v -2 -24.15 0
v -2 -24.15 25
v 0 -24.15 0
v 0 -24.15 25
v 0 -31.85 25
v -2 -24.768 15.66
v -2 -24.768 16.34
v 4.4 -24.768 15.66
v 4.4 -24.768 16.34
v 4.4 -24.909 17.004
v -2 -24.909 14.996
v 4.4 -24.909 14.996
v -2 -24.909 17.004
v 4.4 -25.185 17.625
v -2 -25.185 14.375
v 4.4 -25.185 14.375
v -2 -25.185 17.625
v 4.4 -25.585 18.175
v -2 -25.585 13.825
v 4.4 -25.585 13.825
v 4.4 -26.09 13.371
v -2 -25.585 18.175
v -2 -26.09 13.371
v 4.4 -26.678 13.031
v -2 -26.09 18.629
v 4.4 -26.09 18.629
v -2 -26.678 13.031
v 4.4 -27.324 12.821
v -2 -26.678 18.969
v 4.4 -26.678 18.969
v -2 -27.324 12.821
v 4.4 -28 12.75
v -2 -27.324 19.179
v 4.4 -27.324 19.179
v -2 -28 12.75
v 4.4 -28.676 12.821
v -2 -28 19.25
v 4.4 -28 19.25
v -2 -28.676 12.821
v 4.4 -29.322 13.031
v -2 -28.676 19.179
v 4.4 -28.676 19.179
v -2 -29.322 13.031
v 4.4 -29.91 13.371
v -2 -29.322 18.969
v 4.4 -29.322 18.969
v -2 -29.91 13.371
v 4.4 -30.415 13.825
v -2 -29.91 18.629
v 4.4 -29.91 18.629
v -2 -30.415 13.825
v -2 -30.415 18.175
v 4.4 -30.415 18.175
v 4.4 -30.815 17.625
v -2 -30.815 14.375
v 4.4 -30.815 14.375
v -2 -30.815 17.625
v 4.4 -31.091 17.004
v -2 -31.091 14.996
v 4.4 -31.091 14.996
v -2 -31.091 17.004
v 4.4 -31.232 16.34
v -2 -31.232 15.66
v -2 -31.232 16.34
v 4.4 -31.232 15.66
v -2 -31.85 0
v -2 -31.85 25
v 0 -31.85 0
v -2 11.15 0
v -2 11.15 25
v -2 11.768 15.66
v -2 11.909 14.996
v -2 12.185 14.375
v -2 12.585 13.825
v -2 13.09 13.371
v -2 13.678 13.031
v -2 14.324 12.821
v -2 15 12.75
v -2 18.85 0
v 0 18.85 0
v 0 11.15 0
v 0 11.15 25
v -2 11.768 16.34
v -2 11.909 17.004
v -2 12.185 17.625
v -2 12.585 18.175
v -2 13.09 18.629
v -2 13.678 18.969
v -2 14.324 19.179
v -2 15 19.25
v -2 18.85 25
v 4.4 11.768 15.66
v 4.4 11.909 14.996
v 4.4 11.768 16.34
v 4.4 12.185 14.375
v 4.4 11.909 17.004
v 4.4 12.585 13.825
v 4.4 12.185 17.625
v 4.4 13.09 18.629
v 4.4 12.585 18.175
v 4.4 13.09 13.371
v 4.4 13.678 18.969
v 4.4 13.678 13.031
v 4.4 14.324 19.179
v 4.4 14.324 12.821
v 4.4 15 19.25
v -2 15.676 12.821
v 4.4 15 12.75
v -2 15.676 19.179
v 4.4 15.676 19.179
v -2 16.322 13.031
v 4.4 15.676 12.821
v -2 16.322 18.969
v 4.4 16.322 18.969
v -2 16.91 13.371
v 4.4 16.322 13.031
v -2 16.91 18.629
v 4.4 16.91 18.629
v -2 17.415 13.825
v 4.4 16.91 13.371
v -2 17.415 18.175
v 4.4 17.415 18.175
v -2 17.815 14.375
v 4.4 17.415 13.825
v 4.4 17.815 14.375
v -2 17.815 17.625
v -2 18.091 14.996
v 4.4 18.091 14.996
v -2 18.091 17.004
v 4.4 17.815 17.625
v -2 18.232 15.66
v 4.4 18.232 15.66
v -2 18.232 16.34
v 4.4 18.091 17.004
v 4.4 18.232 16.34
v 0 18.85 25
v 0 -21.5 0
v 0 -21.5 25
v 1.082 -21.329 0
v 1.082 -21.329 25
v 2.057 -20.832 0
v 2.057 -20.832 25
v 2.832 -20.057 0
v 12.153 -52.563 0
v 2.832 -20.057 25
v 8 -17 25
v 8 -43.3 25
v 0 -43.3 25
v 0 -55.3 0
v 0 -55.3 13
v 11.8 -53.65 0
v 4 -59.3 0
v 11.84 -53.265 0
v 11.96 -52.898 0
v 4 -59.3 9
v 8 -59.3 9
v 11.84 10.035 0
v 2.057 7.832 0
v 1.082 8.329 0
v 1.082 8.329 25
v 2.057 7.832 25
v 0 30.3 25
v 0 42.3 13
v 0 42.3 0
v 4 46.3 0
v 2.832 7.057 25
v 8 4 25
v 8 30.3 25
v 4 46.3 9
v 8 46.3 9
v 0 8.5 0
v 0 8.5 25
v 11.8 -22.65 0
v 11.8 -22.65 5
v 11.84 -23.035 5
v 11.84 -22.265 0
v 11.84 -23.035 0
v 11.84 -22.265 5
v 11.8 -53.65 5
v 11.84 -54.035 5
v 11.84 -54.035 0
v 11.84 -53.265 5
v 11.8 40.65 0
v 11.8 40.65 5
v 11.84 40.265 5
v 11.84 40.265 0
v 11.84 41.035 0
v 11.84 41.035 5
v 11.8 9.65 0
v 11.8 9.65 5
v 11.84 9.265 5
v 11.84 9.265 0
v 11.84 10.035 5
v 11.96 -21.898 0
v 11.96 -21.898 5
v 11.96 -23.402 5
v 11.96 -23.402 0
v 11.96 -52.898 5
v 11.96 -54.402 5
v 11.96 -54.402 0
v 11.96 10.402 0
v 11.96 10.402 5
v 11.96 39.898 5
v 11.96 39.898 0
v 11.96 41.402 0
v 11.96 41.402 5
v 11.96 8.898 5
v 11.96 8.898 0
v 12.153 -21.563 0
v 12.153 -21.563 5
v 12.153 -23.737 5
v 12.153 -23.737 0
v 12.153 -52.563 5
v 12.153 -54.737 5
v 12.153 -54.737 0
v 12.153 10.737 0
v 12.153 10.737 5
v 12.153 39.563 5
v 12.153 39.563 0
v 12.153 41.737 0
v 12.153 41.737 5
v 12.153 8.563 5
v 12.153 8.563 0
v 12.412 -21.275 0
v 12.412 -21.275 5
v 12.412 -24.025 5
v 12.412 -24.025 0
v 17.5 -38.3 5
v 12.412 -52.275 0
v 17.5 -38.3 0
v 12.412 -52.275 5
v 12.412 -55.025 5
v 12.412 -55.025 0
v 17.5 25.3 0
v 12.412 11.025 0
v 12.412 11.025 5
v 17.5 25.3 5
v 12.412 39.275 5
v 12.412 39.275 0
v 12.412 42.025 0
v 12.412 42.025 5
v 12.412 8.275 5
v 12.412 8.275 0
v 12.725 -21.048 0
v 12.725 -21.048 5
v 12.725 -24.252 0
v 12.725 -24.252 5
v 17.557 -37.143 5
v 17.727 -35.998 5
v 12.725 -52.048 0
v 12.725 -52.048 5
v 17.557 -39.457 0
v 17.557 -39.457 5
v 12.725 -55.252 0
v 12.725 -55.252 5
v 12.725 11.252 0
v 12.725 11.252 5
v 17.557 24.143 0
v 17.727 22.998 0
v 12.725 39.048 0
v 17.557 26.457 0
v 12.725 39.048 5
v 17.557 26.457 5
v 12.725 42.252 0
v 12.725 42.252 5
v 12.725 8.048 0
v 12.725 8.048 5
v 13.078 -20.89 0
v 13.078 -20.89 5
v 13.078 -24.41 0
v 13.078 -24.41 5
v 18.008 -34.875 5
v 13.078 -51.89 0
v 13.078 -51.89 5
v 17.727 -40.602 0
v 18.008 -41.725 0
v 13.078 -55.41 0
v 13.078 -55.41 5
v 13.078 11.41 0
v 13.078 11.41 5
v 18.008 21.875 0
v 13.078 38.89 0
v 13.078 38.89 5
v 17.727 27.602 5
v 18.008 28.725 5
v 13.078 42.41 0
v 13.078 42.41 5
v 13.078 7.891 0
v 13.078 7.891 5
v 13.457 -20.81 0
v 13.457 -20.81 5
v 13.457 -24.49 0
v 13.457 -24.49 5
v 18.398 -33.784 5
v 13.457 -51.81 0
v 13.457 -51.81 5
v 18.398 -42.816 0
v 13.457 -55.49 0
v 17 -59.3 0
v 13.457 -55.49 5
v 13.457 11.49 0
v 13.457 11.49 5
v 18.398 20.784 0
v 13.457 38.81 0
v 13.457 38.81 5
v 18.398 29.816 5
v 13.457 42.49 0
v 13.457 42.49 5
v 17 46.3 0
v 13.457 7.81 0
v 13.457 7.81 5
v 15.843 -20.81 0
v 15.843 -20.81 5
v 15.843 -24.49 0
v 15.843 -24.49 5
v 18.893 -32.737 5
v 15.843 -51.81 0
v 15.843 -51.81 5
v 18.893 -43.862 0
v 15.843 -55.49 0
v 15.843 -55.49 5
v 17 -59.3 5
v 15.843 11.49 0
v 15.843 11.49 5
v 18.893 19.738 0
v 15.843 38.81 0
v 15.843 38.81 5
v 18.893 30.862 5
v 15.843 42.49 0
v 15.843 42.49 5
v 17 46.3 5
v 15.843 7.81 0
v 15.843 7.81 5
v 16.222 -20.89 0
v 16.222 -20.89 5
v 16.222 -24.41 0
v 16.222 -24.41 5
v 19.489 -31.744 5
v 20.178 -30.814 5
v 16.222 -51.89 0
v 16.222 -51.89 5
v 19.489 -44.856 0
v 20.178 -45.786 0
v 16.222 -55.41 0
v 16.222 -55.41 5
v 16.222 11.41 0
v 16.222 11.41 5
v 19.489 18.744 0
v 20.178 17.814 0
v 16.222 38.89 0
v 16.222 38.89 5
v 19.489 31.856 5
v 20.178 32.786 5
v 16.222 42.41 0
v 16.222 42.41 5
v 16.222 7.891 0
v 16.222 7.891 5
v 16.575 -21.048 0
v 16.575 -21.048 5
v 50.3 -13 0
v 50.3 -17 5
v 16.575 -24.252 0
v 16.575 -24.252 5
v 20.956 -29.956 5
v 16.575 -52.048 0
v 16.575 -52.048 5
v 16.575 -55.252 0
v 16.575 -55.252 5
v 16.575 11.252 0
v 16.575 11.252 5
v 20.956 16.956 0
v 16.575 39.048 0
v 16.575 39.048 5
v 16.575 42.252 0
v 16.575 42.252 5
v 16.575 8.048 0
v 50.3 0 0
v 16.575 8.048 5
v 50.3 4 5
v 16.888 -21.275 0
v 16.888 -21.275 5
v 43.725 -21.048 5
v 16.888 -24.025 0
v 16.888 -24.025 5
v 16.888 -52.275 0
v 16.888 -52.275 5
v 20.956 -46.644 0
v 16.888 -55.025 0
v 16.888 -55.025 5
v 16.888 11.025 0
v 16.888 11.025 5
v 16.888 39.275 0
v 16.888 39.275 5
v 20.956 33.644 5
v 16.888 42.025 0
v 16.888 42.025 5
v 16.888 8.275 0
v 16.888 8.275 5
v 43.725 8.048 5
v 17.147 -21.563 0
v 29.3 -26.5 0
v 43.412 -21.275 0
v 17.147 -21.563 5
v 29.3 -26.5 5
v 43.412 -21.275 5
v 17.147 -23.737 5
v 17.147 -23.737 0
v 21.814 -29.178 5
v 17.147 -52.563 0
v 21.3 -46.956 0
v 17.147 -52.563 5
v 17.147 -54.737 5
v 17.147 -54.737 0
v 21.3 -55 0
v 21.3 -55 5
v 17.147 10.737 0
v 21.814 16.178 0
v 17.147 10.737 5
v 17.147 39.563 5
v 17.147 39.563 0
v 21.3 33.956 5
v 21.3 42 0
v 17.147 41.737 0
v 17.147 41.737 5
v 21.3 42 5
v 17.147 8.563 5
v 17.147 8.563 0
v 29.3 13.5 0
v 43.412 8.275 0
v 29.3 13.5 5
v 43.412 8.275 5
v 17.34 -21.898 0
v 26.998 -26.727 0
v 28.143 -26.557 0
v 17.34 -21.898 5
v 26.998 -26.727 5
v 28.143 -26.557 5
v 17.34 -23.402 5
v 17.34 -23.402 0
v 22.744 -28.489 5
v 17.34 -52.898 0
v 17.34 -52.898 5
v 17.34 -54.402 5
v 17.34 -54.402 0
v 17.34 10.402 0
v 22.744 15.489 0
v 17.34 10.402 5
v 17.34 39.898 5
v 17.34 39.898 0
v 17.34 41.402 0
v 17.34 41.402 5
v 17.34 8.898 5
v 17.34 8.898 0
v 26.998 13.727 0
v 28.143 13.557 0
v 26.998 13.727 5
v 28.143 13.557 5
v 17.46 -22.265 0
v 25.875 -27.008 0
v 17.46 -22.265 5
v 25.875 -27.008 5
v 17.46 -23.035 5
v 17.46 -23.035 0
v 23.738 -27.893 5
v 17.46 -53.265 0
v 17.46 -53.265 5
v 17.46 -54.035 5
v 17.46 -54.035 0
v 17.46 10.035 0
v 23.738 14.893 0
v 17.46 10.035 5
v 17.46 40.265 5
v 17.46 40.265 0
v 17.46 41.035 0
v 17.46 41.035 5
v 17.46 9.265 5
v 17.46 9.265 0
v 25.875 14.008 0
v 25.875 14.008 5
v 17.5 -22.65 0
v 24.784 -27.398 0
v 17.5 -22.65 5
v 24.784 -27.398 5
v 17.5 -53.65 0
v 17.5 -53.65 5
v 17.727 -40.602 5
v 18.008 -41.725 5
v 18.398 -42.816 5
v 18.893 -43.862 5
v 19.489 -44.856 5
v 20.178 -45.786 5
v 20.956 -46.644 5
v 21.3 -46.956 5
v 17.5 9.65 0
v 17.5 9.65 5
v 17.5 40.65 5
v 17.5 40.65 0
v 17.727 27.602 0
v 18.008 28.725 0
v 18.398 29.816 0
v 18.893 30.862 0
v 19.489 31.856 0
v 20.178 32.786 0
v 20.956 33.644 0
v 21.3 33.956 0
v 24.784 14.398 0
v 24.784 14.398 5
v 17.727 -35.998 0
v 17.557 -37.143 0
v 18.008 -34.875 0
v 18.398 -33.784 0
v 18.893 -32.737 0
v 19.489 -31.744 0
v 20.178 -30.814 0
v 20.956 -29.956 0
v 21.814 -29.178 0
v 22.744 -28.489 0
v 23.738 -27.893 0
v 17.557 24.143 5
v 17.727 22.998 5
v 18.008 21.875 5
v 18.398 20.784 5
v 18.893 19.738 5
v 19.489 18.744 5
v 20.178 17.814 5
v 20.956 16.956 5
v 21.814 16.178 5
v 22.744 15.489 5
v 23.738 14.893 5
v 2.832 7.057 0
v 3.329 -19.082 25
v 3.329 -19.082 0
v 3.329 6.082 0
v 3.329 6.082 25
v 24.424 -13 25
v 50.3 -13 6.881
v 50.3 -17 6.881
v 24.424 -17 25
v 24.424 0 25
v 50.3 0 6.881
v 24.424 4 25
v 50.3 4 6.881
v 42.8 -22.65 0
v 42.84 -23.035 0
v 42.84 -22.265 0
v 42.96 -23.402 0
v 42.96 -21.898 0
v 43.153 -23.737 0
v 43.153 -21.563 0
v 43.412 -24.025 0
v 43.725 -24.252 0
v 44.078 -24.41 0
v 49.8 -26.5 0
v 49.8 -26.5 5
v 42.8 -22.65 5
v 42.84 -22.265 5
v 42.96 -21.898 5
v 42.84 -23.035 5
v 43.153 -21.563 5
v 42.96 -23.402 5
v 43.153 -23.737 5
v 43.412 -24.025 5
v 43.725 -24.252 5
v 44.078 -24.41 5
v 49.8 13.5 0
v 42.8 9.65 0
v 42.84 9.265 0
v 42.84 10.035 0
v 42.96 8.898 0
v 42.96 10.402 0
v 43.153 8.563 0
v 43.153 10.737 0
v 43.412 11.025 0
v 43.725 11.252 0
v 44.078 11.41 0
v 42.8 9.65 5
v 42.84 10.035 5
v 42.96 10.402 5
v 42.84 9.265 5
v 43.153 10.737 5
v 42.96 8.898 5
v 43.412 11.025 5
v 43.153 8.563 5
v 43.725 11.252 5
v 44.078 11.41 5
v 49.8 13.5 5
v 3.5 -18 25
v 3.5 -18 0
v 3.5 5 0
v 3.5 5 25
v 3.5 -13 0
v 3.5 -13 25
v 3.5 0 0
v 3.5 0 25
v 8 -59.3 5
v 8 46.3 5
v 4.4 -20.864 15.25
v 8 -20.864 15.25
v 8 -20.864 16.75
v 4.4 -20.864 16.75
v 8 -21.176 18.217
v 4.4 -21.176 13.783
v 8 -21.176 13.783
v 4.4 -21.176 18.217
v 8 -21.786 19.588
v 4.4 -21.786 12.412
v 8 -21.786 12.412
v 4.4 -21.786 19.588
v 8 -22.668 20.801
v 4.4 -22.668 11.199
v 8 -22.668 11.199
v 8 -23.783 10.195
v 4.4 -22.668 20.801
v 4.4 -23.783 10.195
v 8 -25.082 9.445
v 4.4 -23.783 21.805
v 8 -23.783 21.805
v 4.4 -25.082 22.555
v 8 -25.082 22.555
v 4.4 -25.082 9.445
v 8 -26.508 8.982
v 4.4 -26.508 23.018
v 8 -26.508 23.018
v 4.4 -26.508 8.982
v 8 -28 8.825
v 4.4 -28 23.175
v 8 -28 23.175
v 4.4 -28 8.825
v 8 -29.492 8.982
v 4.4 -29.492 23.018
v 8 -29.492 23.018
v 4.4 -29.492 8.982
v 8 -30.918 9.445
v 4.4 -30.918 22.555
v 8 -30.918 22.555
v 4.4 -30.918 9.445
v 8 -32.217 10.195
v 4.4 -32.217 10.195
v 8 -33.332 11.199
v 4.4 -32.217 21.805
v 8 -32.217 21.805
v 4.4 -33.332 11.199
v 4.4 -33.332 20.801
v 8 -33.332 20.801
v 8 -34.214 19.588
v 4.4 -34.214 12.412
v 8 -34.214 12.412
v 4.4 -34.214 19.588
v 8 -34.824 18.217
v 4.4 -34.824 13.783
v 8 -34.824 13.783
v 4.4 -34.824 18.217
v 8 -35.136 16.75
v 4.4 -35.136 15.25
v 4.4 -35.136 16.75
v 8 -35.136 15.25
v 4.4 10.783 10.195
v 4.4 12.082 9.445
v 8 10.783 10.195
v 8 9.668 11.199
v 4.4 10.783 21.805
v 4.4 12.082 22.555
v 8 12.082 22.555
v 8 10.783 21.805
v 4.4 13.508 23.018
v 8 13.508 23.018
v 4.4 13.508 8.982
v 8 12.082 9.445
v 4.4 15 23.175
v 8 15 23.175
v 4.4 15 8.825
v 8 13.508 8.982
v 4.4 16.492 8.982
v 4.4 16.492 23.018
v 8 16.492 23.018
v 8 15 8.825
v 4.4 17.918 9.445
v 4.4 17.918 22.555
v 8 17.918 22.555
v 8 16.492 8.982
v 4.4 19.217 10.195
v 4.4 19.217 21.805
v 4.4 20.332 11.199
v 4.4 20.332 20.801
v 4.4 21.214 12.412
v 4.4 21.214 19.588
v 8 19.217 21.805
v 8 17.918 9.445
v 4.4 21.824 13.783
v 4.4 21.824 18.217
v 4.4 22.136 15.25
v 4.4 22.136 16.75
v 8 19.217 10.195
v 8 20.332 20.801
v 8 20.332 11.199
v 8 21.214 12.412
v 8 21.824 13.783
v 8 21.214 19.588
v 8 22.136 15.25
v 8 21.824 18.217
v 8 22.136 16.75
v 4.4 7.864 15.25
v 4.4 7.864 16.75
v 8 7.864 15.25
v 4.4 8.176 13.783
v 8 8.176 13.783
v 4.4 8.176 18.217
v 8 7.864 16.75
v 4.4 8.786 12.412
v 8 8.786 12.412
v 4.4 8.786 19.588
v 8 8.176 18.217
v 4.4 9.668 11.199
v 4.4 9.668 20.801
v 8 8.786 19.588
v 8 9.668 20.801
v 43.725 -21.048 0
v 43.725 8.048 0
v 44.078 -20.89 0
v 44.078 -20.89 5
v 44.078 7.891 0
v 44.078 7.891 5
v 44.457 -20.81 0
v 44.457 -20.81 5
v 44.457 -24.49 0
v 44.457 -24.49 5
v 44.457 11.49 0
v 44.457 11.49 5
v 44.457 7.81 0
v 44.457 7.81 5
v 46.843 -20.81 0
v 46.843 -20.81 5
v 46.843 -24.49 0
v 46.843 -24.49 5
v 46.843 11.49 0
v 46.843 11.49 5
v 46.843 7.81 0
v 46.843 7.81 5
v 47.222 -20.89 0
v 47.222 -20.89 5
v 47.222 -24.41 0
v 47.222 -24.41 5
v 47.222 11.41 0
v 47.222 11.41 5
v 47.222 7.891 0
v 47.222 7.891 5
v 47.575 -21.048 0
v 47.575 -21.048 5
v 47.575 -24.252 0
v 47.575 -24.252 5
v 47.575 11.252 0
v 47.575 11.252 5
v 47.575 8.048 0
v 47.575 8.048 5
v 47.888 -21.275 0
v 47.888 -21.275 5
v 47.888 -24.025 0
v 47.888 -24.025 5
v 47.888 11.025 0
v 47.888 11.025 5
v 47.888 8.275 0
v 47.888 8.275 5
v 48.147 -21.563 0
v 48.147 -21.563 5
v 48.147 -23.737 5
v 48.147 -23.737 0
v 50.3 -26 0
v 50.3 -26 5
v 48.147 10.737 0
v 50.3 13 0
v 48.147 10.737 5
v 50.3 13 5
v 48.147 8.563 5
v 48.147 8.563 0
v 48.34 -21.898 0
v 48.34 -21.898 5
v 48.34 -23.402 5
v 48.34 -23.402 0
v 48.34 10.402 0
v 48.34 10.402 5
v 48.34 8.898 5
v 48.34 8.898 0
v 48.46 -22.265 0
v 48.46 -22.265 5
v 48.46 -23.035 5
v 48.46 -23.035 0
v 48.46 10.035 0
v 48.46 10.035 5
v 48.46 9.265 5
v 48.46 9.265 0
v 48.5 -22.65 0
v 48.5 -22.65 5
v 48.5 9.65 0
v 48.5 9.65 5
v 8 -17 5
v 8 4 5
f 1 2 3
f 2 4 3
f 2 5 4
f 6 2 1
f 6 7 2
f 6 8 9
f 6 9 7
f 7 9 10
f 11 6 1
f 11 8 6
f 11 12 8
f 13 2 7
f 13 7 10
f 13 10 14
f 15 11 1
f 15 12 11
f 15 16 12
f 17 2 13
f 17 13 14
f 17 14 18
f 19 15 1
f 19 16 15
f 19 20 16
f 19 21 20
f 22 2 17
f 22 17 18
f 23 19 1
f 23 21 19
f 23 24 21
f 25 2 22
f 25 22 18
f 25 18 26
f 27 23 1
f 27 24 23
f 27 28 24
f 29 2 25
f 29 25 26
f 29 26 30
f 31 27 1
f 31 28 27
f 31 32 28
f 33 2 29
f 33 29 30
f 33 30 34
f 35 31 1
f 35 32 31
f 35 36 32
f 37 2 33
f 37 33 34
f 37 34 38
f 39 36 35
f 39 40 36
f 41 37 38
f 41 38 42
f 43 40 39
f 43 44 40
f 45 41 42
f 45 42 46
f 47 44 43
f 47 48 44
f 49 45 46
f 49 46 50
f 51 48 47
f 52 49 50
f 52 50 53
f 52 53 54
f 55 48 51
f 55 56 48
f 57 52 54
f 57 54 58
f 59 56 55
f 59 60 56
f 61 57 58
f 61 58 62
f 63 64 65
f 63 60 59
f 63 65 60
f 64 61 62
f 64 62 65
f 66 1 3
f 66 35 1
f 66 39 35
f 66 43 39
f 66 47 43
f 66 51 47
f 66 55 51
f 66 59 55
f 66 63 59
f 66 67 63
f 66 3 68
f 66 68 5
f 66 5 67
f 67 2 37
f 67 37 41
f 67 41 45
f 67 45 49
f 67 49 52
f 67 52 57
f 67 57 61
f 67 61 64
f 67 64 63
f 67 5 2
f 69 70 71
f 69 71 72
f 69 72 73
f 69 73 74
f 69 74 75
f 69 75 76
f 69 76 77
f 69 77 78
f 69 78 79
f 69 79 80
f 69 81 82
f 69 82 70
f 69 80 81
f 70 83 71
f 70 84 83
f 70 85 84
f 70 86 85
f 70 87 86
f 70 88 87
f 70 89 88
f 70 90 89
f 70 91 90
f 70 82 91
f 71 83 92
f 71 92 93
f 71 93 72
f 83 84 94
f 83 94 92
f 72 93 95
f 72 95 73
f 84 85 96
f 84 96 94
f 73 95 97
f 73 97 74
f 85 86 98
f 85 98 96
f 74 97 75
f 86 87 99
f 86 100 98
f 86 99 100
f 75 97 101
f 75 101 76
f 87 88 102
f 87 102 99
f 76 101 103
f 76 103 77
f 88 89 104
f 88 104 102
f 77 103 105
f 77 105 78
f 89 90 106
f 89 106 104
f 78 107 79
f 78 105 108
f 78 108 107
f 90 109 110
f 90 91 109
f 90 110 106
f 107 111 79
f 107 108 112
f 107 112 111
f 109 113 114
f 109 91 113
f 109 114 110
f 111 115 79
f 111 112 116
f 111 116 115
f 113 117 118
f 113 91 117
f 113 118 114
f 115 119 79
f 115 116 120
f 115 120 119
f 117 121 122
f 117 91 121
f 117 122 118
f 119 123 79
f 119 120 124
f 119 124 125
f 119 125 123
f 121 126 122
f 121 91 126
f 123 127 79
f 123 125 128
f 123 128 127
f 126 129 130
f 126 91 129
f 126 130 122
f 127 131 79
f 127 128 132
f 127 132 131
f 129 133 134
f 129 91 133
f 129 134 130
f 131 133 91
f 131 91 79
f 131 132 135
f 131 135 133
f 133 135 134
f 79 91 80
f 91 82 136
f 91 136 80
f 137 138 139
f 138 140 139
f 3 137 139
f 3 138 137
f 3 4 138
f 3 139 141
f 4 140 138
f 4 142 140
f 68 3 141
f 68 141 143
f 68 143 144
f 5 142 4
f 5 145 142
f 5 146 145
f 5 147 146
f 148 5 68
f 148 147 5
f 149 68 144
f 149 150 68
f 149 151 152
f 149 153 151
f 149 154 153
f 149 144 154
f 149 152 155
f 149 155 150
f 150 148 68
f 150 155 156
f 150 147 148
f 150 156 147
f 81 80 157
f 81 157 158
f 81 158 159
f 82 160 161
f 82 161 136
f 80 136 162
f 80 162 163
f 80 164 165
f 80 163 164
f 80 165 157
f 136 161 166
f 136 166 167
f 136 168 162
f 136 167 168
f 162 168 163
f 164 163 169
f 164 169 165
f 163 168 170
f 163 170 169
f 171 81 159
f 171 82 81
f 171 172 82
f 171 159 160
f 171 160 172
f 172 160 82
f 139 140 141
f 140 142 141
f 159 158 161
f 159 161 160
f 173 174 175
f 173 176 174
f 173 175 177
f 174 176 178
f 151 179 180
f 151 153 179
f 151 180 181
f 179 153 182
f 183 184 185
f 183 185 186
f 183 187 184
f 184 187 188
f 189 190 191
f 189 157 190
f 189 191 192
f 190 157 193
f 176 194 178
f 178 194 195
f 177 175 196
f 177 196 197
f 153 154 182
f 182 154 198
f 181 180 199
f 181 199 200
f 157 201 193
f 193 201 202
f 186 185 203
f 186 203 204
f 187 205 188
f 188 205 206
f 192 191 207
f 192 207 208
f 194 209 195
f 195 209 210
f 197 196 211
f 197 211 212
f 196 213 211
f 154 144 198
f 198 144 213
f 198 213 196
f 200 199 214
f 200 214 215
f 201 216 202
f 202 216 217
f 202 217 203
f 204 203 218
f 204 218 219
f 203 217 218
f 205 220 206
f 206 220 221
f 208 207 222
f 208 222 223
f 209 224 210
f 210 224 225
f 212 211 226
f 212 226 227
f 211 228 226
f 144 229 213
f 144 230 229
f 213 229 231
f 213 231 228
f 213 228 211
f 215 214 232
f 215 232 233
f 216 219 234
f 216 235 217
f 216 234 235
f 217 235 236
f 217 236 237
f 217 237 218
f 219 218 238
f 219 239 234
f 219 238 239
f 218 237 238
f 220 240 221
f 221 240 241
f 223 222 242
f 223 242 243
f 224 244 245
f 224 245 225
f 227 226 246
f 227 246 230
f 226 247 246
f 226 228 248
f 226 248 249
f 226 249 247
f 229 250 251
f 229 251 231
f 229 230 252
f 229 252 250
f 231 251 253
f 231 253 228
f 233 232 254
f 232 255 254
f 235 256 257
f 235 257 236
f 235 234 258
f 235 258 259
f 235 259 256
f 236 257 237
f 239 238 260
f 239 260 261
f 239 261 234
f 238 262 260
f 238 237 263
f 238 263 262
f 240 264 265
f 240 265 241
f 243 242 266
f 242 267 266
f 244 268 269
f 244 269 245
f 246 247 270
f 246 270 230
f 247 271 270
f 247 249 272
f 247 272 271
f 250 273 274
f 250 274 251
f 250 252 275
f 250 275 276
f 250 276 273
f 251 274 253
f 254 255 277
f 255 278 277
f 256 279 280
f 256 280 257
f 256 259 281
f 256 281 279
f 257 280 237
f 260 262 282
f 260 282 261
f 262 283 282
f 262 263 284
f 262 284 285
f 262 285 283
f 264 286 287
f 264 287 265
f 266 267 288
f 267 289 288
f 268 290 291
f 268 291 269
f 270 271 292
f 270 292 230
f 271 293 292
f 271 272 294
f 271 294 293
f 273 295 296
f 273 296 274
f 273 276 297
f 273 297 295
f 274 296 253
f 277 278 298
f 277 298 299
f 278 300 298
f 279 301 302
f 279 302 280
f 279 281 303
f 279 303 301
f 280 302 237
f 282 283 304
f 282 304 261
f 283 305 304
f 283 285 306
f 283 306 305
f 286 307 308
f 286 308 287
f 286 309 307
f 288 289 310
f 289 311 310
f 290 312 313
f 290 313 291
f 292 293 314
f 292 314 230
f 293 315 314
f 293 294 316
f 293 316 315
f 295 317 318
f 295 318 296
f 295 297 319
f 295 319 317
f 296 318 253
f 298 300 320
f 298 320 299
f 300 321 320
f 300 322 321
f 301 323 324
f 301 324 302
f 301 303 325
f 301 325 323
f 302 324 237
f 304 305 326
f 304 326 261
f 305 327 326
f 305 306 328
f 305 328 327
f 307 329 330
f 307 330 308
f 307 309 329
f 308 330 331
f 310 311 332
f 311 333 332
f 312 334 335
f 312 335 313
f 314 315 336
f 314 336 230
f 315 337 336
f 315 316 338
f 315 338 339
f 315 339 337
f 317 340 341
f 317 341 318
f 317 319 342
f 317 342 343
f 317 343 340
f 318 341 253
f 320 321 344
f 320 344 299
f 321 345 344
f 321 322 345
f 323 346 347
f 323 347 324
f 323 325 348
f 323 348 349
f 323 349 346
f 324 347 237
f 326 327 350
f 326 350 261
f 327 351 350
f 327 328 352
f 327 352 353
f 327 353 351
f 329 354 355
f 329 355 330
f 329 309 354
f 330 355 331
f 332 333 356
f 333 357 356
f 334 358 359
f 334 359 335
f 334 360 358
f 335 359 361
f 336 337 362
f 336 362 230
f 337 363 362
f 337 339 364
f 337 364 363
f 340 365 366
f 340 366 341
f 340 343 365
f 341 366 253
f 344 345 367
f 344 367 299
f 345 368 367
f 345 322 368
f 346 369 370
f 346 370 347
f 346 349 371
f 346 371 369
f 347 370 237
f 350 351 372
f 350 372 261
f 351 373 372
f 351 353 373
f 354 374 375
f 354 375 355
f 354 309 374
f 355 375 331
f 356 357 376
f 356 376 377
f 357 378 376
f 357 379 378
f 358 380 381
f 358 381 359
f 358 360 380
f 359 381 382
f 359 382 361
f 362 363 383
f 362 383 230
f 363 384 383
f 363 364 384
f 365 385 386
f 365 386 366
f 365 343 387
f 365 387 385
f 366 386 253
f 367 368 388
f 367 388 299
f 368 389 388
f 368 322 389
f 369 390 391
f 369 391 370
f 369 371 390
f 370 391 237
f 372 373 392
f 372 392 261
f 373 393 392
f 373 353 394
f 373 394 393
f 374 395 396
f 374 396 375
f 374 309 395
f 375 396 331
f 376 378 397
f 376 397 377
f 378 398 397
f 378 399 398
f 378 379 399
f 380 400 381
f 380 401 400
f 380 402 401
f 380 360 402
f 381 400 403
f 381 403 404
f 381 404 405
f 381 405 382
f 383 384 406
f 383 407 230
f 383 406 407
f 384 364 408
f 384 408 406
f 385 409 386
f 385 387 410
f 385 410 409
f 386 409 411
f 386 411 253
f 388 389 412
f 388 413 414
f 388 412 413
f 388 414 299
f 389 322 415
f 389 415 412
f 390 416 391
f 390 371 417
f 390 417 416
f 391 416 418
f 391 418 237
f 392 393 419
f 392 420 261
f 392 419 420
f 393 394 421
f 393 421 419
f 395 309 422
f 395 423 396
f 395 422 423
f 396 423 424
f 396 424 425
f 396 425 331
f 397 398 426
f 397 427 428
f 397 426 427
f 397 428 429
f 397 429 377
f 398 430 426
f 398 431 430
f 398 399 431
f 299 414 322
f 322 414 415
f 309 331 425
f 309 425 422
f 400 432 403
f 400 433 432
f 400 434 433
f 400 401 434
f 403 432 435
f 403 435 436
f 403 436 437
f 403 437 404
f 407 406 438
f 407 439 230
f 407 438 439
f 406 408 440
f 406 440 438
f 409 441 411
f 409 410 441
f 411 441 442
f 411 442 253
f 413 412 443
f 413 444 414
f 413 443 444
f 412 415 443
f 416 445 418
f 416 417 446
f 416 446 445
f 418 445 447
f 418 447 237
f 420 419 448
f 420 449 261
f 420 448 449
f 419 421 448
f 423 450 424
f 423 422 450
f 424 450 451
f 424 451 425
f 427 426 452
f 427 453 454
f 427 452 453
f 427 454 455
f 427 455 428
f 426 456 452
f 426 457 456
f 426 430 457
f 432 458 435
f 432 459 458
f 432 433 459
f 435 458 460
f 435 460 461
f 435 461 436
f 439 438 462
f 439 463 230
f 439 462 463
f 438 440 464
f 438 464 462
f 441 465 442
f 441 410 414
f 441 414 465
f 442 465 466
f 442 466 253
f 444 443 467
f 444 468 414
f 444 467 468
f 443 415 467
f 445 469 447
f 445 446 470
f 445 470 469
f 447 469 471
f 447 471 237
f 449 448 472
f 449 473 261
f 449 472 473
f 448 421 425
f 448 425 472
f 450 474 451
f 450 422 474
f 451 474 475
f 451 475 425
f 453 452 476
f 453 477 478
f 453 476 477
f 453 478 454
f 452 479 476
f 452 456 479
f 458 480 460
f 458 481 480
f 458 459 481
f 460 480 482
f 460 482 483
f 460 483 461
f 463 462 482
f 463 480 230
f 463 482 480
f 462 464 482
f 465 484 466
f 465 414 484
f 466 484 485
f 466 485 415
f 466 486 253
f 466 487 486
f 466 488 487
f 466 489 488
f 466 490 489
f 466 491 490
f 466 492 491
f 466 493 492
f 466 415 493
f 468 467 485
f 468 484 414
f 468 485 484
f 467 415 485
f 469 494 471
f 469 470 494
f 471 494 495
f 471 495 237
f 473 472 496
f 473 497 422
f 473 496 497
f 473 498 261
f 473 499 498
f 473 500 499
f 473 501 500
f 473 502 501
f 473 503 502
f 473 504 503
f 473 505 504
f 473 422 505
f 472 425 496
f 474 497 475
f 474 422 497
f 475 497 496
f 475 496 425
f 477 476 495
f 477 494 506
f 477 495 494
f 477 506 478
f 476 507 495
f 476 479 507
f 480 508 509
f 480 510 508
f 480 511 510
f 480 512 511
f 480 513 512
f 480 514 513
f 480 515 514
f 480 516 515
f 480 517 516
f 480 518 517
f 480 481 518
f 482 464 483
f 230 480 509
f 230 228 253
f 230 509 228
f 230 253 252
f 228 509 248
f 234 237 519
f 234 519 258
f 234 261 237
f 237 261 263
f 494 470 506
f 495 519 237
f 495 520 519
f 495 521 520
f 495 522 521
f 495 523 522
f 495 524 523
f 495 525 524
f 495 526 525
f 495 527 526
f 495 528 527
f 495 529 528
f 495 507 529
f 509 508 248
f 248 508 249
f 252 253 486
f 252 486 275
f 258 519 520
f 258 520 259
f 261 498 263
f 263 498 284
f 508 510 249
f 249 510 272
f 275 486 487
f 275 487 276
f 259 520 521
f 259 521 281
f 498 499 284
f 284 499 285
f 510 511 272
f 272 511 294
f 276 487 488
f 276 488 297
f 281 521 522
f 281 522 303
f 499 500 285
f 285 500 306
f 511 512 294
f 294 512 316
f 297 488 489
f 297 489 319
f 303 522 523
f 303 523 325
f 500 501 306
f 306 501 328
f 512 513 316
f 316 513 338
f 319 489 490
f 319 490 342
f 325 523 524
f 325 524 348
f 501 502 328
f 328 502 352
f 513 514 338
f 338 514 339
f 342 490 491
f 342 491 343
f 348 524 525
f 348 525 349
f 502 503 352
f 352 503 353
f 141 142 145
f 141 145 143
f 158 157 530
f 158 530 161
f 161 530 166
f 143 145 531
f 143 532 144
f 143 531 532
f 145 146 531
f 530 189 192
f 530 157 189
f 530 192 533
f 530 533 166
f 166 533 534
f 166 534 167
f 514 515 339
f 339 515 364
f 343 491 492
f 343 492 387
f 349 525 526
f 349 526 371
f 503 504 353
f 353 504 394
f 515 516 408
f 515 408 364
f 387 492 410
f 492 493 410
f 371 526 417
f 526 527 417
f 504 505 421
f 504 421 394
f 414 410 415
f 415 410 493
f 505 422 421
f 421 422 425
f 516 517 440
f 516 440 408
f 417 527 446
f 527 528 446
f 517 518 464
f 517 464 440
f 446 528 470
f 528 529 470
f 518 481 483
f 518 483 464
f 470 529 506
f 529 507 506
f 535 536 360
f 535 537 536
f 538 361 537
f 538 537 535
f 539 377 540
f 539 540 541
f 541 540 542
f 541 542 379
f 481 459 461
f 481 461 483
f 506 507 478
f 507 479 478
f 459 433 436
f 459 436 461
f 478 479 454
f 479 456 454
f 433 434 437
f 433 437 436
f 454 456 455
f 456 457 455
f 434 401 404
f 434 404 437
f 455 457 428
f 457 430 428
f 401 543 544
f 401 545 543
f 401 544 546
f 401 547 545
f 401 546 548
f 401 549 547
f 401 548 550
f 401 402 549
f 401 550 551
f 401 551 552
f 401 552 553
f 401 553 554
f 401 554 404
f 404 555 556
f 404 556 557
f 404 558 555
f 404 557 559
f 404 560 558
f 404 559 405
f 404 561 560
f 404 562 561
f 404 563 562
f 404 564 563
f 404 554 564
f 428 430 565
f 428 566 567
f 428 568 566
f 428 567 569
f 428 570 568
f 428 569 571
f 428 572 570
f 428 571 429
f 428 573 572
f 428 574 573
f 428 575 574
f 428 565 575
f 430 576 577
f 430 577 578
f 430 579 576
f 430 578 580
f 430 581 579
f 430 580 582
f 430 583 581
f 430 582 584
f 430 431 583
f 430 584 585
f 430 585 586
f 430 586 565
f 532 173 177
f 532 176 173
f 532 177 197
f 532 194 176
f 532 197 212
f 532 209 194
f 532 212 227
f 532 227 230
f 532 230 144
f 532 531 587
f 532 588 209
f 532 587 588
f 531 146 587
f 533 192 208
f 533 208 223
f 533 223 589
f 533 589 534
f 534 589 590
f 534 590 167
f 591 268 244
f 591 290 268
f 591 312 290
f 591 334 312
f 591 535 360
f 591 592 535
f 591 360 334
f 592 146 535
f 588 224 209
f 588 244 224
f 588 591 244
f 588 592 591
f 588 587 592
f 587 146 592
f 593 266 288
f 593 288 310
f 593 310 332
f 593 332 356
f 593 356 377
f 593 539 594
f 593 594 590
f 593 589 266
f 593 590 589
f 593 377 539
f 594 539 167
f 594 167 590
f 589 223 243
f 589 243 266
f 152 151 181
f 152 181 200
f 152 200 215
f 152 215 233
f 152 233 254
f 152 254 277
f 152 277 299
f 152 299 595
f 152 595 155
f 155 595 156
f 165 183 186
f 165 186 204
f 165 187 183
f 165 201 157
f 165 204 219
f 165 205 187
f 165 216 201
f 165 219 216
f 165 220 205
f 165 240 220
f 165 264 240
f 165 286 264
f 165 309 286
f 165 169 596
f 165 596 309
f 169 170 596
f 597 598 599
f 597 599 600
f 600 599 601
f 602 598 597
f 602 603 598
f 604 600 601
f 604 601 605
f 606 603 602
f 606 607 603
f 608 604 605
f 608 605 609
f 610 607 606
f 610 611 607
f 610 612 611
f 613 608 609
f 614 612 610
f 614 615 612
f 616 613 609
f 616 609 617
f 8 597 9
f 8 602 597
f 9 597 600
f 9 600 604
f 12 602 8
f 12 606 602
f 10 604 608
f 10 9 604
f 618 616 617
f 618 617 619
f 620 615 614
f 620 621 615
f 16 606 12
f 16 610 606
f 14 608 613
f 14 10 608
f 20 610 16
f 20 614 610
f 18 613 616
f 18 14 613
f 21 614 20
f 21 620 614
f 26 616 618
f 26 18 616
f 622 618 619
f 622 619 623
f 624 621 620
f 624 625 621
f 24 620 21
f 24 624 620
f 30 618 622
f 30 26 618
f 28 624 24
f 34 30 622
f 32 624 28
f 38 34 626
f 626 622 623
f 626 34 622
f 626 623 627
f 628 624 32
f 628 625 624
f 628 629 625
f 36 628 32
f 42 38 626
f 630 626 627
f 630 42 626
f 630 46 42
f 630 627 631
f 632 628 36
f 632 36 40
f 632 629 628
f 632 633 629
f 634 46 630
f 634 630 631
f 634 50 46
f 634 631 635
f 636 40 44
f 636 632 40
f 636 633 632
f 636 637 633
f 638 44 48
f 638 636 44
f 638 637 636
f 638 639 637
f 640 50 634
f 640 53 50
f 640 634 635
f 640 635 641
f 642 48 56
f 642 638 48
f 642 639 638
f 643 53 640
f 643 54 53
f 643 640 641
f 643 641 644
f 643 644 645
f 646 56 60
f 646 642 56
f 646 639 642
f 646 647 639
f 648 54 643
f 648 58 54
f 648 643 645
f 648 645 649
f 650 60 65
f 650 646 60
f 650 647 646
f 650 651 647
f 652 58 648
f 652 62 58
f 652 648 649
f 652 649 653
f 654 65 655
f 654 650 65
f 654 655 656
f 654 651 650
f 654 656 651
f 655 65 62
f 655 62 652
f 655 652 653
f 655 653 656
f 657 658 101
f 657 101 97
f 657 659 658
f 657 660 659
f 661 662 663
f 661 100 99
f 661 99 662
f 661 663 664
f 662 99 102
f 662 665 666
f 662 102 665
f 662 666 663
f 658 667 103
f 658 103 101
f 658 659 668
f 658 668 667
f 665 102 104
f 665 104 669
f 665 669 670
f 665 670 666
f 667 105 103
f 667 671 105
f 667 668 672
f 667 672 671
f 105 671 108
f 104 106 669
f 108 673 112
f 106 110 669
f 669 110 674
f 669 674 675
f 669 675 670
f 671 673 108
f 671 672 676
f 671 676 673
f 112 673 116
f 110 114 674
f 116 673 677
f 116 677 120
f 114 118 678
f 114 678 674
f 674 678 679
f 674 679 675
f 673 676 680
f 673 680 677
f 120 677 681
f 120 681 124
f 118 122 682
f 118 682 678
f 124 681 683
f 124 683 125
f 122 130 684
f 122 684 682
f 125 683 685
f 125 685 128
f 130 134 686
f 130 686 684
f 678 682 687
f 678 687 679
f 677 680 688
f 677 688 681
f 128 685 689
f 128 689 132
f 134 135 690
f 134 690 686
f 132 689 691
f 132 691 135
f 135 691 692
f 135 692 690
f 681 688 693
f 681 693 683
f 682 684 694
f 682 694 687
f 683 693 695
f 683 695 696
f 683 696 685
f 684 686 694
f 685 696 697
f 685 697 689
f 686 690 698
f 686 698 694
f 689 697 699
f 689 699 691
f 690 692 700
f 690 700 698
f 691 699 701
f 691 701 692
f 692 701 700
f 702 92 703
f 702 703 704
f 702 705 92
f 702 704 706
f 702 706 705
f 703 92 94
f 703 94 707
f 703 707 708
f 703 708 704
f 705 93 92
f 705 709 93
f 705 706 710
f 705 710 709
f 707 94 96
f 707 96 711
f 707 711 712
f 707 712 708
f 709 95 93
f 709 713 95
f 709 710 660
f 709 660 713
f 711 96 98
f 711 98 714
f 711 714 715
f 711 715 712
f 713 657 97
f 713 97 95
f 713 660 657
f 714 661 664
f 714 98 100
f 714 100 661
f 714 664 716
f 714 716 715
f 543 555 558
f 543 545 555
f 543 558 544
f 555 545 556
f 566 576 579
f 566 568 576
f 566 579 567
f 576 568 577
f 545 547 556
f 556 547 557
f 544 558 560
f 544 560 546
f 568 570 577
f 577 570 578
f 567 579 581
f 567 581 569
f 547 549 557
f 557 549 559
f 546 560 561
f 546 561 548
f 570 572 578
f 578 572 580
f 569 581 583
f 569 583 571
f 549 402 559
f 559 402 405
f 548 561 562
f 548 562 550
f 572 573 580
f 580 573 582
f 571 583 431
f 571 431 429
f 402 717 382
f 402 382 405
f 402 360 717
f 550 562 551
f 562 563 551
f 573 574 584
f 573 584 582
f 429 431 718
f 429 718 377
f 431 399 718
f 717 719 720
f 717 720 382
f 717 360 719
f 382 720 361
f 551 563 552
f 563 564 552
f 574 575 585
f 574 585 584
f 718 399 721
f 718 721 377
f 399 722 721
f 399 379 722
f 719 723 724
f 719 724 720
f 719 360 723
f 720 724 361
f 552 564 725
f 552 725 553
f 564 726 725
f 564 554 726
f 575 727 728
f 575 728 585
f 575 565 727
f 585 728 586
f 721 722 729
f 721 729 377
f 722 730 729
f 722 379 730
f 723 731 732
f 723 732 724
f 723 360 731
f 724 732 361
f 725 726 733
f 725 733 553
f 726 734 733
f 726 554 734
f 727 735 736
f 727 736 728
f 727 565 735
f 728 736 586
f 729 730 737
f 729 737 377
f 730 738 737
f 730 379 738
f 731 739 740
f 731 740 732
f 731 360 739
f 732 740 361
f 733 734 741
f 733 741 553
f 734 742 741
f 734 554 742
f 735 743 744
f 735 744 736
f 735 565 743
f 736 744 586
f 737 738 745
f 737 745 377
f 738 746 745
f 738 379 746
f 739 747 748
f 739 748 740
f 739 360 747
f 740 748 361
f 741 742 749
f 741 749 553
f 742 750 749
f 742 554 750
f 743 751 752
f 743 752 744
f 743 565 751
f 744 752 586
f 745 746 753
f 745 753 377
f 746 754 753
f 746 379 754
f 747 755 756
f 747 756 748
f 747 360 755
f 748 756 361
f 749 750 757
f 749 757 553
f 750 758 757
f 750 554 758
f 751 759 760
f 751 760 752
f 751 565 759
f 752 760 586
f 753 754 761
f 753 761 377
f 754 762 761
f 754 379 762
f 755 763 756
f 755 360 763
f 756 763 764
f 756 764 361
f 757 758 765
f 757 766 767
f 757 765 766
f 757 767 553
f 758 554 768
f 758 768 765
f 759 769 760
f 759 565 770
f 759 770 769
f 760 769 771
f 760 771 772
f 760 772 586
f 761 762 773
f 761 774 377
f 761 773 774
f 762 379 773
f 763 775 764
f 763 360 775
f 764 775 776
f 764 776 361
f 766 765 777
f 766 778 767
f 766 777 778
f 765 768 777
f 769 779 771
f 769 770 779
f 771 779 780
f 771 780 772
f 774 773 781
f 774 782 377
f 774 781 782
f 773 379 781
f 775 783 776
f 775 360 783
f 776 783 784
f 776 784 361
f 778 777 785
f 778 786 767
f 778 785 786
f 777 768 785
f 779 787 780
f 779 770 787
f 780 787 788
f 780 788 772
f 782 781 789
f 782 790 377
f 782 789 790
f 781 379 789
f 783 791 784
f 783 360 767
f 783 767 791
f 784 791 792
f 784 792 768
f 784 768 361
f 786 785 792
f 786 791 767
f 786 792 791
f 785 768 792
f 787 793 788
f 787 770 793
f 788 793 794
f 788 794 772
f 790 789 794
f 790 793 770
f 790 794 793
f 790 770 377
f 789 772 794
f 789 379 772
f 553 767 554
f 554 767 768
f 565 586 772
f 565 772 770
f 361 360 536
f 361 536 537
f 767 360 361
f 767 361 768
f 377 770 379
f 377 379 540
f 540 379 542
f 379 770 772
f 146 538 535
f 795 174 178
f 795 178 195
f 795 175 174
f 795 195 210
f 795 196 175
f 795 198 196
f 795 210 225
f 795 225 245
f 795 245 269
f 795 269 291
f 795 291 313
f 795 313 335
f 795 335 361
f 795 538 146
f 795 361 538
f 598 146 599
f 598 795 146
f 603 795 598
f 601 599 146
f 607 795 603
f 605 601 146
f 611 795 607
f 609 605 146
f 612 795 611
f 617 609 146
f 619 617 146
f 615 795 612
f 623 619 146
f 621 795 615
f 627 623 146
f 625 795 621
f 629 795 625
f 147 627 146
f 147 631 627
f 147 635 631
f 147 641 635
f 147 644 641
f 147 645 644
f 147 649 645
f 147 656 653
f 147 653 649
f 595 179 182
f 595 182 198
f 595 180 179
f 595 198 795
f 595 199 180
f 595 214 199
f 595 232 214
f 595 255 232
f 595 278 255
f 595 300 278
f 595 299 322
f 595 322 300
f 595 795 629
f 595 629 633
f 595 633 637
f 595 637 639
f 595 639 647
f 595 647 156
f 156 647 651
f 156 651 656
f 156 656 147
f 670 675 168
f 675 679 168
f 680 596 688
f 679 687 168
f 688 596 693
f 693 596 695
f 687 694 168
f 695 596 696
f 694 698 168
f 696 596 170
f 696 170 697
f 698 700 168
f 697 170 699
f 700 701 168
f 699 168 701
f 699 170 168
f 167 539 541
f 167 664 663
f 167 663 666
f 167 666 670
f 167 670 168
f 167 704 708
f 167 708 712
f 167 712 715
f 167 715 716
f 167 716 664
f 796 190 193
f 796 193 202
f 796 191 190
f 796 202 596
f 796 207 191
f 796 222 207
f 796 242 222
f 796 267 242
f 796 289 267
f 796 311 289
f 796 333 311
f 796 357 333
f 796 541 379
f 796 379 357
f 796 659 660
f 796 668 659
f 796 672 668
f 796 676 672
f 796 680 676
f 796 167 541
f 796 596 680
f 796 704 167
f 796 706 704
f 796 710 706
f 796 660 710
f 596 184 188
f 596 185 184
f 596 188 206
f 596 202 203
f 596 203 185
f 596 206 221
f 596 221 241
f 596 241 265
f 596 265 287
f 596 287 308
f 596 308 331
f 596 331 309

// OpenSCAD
// file: ../configuration.scad
// Layer high for the printing [mm]
layer_height = 0.20; //Slic3r->Print Settings->Layers and perimeters->Layer height

// Spare for the screws heads [mm]
spare = 0.75;
// M6 screw diameter [mm]
M6_head_diameter = 13.6+spare;
//M6_head_diameter = 10.6+spare;
//M6_head_diameter = 12+spare;

// M6 head high (for hiding it) [mm]
//M6_head_height = 4;
M6_head_height = 3.6;
//M6_head_height = 4.5;

// Screws and rods diameters
M8_smooth_rod_diameter = 8.3;
M8_smooth_rod_diameter_catch = 8.4;
// Prumer 8mm tyce
rod_8mm_d = 8.2; //pro dil z-top
M6_diameter = 6.6;
M6_dia=M6_diameter; //pro dil z-top
M6_diamater_horizontal = 6.5;
M3_diameter = 3.7;
M3_diameter_horizontal = 3.5;

//matice trapézové tyče
TRAP_diameter_externa=22; //průmer vnější 


// Nuts diameters
M3_nut_diameter = 7.0;
M3_nut_diameter_horizontal = 6.7;

// ALU profile parameters
ALU_cut_width = 7.9;
ALU_cut_width_horizontal = 7.7;

// Sirka matky do profilu (pokud neni pouzita, tak 0)
//profile_nut_width = 9.5;
profile_nut_width = 0; //pro z-top

// Motors length/depth (for axes Z and Y)
//SX17-1003LQFE (recommended for the Z axis)
motor_length = 29.5;
//SX17-1003 (recommended for the Z axis)
//motor_length = 34;
//SX17-1005
//motor_length = 40;
//SX17-0905 - this motor is too high - the Z end stop holder has to be adjusted
//motor_length = 48;

// Extrusion width [mm]
extrusion_width = 0.66; //Slic3r->Print Settings->Advanced->Default extrusion width

/// Belt type ******************************************************

// GT2 
/*belt_tooth_distance = 2;
belt_tooth_ratio = 0.5;
belt_tooth_height = 1.4;
belt_thickness = 2.3;
*/

// T2.5
belt_tooth_distance = 2.5;
belt_tooth_ratio = 0.5;


// Tloustka rohovych spojek
// 5 mm => sroub M6x14 s podlozkou
// 3 mm => sroub M6x12 s podlozkou
coupler_thickness = 3;
// main file
// RebeliX
//
// y motor
// GNU GPL v3
// Martin Neruda <neruda@reprap4u.cz>
// http://www.reprap4u.cz
// Inspired by Rebel II

include <../configuration.scad>

base_thickness = 8;
motor_base_thickness = 5;

module y_motor_base(){
	difference(){
      translate([0,0,0]) cube([42.3+base_thickness,42.3+4,motor_length+motor_base_thickness]);
      translate([base_thickness,4,motor_base_thickness]) cube([60,60,60]);
	}
	// ALU profile guide
	translate([-2,15-ALU_cut_width_horizontal/2,0]) cube([4,ALU_cut_width_horizontal,motor_length+motor_base_thickness]);
}

module y_motor_cuts(){			
	translate([base_thickness,5,29.5+7]) rotate([-35,0,-90]) cube([10,70,40]);	
	translate([base_thickness,5,29.5+7]) rotate([0,0,-90]) cube([10,70,40]);	
	
	translate([base_thickness+21.3-8,21.3+4-8,-0.1]) cube([40,40,10]);
	translate([base_thickness+21.3,21.3+4-11.8,-0.1]) cube([25,15,10]);		
	
	translate([base_thickness+42.3,13,-0.1]) rotate([0,0,45]) cube([10,10,10,]);
	translate([base_thickness+9,42.3+4,-0.1]) rotate([0,0,-45]) cube([10,10,10,]);	
	
	// Stepper wires hole
	translate([-4,-0.1,motor_length+motor_base_thickness-9.5]) cube([40,60,10]);
	translate([-0.1,4+21.3+5,motor_length+motor_base_thickness-9.5]) rotate([-45,0,0]) cube([10,40,40]);	
	
	translate([0,42.3,-0.1]) rotate([0,0,45]) cube([10,10,motor_length+motor_base_thickness]);

	// Z-stepper wires space
	translate([0,5,-0.1]) cylinder(r=3.5,h=motor_length+motor_base_thickness+1,$fn=20);
	translate([3.5,5,-0.1]) rotate([0,0,180]) cube([10,10,motor_length+motor_base_thickness+1]);
}	

module y_motor_holes(){
	// ALU mount hole
	translate([base_thickness-M6_head_height,15,16]) rotate([0,90,0]) cylinder(r = M6_head_diameter/2, h = 10, $fn = 30);
	translate([-3,15,16]) rotate([0,90,0]) cylinder(r = M6_diamater_horizontal/2, h = 10, $fn = 30);

	// Stepper hole
	translate([base_thickness+5.65,4+5.65,-0.1]){
		hull(){
			translate([0,0,-0.1]) cylinder(h = 20, r=M3_diameter/2, $fn=30);
			translate([0+2,0,-0.1]) cylinder(h = 20, r=M3_diameter/2, $fn=30);
		}
		hull(){
			translate([31,0,-0.1]) cylinder(h = 20, r=M3_diameter/2, $fn=30);
			translate([31+2,0,-0.1]) cylinder(h = 20, r=M3_diameter/2, $fn=30);
		}
		hull(){
			translate([0,31,-0.1]) cylinder(h = 20, r=M3_diameter/2, $fn=30);
			translate([0+2,31,-0.1]) cylinder(h = 20, r=M3_diameter/2, $fn=30);	
		}
	}	
	// Middle stepper part hole
	translate([base_thickness+21.3,4+21.3,-0.1]) cylinder(r = 11.8,h = 10,$fn = 64);
}

difference(){
	y_motor_base();
	y_motor_cuts();
	y_motor_holes();
}	

translate([0,-13,0]) mirror([0,1,0]) difference(){
    y_motor_base();
    y_motor_cuts();
    y_motor_holes();
}   
